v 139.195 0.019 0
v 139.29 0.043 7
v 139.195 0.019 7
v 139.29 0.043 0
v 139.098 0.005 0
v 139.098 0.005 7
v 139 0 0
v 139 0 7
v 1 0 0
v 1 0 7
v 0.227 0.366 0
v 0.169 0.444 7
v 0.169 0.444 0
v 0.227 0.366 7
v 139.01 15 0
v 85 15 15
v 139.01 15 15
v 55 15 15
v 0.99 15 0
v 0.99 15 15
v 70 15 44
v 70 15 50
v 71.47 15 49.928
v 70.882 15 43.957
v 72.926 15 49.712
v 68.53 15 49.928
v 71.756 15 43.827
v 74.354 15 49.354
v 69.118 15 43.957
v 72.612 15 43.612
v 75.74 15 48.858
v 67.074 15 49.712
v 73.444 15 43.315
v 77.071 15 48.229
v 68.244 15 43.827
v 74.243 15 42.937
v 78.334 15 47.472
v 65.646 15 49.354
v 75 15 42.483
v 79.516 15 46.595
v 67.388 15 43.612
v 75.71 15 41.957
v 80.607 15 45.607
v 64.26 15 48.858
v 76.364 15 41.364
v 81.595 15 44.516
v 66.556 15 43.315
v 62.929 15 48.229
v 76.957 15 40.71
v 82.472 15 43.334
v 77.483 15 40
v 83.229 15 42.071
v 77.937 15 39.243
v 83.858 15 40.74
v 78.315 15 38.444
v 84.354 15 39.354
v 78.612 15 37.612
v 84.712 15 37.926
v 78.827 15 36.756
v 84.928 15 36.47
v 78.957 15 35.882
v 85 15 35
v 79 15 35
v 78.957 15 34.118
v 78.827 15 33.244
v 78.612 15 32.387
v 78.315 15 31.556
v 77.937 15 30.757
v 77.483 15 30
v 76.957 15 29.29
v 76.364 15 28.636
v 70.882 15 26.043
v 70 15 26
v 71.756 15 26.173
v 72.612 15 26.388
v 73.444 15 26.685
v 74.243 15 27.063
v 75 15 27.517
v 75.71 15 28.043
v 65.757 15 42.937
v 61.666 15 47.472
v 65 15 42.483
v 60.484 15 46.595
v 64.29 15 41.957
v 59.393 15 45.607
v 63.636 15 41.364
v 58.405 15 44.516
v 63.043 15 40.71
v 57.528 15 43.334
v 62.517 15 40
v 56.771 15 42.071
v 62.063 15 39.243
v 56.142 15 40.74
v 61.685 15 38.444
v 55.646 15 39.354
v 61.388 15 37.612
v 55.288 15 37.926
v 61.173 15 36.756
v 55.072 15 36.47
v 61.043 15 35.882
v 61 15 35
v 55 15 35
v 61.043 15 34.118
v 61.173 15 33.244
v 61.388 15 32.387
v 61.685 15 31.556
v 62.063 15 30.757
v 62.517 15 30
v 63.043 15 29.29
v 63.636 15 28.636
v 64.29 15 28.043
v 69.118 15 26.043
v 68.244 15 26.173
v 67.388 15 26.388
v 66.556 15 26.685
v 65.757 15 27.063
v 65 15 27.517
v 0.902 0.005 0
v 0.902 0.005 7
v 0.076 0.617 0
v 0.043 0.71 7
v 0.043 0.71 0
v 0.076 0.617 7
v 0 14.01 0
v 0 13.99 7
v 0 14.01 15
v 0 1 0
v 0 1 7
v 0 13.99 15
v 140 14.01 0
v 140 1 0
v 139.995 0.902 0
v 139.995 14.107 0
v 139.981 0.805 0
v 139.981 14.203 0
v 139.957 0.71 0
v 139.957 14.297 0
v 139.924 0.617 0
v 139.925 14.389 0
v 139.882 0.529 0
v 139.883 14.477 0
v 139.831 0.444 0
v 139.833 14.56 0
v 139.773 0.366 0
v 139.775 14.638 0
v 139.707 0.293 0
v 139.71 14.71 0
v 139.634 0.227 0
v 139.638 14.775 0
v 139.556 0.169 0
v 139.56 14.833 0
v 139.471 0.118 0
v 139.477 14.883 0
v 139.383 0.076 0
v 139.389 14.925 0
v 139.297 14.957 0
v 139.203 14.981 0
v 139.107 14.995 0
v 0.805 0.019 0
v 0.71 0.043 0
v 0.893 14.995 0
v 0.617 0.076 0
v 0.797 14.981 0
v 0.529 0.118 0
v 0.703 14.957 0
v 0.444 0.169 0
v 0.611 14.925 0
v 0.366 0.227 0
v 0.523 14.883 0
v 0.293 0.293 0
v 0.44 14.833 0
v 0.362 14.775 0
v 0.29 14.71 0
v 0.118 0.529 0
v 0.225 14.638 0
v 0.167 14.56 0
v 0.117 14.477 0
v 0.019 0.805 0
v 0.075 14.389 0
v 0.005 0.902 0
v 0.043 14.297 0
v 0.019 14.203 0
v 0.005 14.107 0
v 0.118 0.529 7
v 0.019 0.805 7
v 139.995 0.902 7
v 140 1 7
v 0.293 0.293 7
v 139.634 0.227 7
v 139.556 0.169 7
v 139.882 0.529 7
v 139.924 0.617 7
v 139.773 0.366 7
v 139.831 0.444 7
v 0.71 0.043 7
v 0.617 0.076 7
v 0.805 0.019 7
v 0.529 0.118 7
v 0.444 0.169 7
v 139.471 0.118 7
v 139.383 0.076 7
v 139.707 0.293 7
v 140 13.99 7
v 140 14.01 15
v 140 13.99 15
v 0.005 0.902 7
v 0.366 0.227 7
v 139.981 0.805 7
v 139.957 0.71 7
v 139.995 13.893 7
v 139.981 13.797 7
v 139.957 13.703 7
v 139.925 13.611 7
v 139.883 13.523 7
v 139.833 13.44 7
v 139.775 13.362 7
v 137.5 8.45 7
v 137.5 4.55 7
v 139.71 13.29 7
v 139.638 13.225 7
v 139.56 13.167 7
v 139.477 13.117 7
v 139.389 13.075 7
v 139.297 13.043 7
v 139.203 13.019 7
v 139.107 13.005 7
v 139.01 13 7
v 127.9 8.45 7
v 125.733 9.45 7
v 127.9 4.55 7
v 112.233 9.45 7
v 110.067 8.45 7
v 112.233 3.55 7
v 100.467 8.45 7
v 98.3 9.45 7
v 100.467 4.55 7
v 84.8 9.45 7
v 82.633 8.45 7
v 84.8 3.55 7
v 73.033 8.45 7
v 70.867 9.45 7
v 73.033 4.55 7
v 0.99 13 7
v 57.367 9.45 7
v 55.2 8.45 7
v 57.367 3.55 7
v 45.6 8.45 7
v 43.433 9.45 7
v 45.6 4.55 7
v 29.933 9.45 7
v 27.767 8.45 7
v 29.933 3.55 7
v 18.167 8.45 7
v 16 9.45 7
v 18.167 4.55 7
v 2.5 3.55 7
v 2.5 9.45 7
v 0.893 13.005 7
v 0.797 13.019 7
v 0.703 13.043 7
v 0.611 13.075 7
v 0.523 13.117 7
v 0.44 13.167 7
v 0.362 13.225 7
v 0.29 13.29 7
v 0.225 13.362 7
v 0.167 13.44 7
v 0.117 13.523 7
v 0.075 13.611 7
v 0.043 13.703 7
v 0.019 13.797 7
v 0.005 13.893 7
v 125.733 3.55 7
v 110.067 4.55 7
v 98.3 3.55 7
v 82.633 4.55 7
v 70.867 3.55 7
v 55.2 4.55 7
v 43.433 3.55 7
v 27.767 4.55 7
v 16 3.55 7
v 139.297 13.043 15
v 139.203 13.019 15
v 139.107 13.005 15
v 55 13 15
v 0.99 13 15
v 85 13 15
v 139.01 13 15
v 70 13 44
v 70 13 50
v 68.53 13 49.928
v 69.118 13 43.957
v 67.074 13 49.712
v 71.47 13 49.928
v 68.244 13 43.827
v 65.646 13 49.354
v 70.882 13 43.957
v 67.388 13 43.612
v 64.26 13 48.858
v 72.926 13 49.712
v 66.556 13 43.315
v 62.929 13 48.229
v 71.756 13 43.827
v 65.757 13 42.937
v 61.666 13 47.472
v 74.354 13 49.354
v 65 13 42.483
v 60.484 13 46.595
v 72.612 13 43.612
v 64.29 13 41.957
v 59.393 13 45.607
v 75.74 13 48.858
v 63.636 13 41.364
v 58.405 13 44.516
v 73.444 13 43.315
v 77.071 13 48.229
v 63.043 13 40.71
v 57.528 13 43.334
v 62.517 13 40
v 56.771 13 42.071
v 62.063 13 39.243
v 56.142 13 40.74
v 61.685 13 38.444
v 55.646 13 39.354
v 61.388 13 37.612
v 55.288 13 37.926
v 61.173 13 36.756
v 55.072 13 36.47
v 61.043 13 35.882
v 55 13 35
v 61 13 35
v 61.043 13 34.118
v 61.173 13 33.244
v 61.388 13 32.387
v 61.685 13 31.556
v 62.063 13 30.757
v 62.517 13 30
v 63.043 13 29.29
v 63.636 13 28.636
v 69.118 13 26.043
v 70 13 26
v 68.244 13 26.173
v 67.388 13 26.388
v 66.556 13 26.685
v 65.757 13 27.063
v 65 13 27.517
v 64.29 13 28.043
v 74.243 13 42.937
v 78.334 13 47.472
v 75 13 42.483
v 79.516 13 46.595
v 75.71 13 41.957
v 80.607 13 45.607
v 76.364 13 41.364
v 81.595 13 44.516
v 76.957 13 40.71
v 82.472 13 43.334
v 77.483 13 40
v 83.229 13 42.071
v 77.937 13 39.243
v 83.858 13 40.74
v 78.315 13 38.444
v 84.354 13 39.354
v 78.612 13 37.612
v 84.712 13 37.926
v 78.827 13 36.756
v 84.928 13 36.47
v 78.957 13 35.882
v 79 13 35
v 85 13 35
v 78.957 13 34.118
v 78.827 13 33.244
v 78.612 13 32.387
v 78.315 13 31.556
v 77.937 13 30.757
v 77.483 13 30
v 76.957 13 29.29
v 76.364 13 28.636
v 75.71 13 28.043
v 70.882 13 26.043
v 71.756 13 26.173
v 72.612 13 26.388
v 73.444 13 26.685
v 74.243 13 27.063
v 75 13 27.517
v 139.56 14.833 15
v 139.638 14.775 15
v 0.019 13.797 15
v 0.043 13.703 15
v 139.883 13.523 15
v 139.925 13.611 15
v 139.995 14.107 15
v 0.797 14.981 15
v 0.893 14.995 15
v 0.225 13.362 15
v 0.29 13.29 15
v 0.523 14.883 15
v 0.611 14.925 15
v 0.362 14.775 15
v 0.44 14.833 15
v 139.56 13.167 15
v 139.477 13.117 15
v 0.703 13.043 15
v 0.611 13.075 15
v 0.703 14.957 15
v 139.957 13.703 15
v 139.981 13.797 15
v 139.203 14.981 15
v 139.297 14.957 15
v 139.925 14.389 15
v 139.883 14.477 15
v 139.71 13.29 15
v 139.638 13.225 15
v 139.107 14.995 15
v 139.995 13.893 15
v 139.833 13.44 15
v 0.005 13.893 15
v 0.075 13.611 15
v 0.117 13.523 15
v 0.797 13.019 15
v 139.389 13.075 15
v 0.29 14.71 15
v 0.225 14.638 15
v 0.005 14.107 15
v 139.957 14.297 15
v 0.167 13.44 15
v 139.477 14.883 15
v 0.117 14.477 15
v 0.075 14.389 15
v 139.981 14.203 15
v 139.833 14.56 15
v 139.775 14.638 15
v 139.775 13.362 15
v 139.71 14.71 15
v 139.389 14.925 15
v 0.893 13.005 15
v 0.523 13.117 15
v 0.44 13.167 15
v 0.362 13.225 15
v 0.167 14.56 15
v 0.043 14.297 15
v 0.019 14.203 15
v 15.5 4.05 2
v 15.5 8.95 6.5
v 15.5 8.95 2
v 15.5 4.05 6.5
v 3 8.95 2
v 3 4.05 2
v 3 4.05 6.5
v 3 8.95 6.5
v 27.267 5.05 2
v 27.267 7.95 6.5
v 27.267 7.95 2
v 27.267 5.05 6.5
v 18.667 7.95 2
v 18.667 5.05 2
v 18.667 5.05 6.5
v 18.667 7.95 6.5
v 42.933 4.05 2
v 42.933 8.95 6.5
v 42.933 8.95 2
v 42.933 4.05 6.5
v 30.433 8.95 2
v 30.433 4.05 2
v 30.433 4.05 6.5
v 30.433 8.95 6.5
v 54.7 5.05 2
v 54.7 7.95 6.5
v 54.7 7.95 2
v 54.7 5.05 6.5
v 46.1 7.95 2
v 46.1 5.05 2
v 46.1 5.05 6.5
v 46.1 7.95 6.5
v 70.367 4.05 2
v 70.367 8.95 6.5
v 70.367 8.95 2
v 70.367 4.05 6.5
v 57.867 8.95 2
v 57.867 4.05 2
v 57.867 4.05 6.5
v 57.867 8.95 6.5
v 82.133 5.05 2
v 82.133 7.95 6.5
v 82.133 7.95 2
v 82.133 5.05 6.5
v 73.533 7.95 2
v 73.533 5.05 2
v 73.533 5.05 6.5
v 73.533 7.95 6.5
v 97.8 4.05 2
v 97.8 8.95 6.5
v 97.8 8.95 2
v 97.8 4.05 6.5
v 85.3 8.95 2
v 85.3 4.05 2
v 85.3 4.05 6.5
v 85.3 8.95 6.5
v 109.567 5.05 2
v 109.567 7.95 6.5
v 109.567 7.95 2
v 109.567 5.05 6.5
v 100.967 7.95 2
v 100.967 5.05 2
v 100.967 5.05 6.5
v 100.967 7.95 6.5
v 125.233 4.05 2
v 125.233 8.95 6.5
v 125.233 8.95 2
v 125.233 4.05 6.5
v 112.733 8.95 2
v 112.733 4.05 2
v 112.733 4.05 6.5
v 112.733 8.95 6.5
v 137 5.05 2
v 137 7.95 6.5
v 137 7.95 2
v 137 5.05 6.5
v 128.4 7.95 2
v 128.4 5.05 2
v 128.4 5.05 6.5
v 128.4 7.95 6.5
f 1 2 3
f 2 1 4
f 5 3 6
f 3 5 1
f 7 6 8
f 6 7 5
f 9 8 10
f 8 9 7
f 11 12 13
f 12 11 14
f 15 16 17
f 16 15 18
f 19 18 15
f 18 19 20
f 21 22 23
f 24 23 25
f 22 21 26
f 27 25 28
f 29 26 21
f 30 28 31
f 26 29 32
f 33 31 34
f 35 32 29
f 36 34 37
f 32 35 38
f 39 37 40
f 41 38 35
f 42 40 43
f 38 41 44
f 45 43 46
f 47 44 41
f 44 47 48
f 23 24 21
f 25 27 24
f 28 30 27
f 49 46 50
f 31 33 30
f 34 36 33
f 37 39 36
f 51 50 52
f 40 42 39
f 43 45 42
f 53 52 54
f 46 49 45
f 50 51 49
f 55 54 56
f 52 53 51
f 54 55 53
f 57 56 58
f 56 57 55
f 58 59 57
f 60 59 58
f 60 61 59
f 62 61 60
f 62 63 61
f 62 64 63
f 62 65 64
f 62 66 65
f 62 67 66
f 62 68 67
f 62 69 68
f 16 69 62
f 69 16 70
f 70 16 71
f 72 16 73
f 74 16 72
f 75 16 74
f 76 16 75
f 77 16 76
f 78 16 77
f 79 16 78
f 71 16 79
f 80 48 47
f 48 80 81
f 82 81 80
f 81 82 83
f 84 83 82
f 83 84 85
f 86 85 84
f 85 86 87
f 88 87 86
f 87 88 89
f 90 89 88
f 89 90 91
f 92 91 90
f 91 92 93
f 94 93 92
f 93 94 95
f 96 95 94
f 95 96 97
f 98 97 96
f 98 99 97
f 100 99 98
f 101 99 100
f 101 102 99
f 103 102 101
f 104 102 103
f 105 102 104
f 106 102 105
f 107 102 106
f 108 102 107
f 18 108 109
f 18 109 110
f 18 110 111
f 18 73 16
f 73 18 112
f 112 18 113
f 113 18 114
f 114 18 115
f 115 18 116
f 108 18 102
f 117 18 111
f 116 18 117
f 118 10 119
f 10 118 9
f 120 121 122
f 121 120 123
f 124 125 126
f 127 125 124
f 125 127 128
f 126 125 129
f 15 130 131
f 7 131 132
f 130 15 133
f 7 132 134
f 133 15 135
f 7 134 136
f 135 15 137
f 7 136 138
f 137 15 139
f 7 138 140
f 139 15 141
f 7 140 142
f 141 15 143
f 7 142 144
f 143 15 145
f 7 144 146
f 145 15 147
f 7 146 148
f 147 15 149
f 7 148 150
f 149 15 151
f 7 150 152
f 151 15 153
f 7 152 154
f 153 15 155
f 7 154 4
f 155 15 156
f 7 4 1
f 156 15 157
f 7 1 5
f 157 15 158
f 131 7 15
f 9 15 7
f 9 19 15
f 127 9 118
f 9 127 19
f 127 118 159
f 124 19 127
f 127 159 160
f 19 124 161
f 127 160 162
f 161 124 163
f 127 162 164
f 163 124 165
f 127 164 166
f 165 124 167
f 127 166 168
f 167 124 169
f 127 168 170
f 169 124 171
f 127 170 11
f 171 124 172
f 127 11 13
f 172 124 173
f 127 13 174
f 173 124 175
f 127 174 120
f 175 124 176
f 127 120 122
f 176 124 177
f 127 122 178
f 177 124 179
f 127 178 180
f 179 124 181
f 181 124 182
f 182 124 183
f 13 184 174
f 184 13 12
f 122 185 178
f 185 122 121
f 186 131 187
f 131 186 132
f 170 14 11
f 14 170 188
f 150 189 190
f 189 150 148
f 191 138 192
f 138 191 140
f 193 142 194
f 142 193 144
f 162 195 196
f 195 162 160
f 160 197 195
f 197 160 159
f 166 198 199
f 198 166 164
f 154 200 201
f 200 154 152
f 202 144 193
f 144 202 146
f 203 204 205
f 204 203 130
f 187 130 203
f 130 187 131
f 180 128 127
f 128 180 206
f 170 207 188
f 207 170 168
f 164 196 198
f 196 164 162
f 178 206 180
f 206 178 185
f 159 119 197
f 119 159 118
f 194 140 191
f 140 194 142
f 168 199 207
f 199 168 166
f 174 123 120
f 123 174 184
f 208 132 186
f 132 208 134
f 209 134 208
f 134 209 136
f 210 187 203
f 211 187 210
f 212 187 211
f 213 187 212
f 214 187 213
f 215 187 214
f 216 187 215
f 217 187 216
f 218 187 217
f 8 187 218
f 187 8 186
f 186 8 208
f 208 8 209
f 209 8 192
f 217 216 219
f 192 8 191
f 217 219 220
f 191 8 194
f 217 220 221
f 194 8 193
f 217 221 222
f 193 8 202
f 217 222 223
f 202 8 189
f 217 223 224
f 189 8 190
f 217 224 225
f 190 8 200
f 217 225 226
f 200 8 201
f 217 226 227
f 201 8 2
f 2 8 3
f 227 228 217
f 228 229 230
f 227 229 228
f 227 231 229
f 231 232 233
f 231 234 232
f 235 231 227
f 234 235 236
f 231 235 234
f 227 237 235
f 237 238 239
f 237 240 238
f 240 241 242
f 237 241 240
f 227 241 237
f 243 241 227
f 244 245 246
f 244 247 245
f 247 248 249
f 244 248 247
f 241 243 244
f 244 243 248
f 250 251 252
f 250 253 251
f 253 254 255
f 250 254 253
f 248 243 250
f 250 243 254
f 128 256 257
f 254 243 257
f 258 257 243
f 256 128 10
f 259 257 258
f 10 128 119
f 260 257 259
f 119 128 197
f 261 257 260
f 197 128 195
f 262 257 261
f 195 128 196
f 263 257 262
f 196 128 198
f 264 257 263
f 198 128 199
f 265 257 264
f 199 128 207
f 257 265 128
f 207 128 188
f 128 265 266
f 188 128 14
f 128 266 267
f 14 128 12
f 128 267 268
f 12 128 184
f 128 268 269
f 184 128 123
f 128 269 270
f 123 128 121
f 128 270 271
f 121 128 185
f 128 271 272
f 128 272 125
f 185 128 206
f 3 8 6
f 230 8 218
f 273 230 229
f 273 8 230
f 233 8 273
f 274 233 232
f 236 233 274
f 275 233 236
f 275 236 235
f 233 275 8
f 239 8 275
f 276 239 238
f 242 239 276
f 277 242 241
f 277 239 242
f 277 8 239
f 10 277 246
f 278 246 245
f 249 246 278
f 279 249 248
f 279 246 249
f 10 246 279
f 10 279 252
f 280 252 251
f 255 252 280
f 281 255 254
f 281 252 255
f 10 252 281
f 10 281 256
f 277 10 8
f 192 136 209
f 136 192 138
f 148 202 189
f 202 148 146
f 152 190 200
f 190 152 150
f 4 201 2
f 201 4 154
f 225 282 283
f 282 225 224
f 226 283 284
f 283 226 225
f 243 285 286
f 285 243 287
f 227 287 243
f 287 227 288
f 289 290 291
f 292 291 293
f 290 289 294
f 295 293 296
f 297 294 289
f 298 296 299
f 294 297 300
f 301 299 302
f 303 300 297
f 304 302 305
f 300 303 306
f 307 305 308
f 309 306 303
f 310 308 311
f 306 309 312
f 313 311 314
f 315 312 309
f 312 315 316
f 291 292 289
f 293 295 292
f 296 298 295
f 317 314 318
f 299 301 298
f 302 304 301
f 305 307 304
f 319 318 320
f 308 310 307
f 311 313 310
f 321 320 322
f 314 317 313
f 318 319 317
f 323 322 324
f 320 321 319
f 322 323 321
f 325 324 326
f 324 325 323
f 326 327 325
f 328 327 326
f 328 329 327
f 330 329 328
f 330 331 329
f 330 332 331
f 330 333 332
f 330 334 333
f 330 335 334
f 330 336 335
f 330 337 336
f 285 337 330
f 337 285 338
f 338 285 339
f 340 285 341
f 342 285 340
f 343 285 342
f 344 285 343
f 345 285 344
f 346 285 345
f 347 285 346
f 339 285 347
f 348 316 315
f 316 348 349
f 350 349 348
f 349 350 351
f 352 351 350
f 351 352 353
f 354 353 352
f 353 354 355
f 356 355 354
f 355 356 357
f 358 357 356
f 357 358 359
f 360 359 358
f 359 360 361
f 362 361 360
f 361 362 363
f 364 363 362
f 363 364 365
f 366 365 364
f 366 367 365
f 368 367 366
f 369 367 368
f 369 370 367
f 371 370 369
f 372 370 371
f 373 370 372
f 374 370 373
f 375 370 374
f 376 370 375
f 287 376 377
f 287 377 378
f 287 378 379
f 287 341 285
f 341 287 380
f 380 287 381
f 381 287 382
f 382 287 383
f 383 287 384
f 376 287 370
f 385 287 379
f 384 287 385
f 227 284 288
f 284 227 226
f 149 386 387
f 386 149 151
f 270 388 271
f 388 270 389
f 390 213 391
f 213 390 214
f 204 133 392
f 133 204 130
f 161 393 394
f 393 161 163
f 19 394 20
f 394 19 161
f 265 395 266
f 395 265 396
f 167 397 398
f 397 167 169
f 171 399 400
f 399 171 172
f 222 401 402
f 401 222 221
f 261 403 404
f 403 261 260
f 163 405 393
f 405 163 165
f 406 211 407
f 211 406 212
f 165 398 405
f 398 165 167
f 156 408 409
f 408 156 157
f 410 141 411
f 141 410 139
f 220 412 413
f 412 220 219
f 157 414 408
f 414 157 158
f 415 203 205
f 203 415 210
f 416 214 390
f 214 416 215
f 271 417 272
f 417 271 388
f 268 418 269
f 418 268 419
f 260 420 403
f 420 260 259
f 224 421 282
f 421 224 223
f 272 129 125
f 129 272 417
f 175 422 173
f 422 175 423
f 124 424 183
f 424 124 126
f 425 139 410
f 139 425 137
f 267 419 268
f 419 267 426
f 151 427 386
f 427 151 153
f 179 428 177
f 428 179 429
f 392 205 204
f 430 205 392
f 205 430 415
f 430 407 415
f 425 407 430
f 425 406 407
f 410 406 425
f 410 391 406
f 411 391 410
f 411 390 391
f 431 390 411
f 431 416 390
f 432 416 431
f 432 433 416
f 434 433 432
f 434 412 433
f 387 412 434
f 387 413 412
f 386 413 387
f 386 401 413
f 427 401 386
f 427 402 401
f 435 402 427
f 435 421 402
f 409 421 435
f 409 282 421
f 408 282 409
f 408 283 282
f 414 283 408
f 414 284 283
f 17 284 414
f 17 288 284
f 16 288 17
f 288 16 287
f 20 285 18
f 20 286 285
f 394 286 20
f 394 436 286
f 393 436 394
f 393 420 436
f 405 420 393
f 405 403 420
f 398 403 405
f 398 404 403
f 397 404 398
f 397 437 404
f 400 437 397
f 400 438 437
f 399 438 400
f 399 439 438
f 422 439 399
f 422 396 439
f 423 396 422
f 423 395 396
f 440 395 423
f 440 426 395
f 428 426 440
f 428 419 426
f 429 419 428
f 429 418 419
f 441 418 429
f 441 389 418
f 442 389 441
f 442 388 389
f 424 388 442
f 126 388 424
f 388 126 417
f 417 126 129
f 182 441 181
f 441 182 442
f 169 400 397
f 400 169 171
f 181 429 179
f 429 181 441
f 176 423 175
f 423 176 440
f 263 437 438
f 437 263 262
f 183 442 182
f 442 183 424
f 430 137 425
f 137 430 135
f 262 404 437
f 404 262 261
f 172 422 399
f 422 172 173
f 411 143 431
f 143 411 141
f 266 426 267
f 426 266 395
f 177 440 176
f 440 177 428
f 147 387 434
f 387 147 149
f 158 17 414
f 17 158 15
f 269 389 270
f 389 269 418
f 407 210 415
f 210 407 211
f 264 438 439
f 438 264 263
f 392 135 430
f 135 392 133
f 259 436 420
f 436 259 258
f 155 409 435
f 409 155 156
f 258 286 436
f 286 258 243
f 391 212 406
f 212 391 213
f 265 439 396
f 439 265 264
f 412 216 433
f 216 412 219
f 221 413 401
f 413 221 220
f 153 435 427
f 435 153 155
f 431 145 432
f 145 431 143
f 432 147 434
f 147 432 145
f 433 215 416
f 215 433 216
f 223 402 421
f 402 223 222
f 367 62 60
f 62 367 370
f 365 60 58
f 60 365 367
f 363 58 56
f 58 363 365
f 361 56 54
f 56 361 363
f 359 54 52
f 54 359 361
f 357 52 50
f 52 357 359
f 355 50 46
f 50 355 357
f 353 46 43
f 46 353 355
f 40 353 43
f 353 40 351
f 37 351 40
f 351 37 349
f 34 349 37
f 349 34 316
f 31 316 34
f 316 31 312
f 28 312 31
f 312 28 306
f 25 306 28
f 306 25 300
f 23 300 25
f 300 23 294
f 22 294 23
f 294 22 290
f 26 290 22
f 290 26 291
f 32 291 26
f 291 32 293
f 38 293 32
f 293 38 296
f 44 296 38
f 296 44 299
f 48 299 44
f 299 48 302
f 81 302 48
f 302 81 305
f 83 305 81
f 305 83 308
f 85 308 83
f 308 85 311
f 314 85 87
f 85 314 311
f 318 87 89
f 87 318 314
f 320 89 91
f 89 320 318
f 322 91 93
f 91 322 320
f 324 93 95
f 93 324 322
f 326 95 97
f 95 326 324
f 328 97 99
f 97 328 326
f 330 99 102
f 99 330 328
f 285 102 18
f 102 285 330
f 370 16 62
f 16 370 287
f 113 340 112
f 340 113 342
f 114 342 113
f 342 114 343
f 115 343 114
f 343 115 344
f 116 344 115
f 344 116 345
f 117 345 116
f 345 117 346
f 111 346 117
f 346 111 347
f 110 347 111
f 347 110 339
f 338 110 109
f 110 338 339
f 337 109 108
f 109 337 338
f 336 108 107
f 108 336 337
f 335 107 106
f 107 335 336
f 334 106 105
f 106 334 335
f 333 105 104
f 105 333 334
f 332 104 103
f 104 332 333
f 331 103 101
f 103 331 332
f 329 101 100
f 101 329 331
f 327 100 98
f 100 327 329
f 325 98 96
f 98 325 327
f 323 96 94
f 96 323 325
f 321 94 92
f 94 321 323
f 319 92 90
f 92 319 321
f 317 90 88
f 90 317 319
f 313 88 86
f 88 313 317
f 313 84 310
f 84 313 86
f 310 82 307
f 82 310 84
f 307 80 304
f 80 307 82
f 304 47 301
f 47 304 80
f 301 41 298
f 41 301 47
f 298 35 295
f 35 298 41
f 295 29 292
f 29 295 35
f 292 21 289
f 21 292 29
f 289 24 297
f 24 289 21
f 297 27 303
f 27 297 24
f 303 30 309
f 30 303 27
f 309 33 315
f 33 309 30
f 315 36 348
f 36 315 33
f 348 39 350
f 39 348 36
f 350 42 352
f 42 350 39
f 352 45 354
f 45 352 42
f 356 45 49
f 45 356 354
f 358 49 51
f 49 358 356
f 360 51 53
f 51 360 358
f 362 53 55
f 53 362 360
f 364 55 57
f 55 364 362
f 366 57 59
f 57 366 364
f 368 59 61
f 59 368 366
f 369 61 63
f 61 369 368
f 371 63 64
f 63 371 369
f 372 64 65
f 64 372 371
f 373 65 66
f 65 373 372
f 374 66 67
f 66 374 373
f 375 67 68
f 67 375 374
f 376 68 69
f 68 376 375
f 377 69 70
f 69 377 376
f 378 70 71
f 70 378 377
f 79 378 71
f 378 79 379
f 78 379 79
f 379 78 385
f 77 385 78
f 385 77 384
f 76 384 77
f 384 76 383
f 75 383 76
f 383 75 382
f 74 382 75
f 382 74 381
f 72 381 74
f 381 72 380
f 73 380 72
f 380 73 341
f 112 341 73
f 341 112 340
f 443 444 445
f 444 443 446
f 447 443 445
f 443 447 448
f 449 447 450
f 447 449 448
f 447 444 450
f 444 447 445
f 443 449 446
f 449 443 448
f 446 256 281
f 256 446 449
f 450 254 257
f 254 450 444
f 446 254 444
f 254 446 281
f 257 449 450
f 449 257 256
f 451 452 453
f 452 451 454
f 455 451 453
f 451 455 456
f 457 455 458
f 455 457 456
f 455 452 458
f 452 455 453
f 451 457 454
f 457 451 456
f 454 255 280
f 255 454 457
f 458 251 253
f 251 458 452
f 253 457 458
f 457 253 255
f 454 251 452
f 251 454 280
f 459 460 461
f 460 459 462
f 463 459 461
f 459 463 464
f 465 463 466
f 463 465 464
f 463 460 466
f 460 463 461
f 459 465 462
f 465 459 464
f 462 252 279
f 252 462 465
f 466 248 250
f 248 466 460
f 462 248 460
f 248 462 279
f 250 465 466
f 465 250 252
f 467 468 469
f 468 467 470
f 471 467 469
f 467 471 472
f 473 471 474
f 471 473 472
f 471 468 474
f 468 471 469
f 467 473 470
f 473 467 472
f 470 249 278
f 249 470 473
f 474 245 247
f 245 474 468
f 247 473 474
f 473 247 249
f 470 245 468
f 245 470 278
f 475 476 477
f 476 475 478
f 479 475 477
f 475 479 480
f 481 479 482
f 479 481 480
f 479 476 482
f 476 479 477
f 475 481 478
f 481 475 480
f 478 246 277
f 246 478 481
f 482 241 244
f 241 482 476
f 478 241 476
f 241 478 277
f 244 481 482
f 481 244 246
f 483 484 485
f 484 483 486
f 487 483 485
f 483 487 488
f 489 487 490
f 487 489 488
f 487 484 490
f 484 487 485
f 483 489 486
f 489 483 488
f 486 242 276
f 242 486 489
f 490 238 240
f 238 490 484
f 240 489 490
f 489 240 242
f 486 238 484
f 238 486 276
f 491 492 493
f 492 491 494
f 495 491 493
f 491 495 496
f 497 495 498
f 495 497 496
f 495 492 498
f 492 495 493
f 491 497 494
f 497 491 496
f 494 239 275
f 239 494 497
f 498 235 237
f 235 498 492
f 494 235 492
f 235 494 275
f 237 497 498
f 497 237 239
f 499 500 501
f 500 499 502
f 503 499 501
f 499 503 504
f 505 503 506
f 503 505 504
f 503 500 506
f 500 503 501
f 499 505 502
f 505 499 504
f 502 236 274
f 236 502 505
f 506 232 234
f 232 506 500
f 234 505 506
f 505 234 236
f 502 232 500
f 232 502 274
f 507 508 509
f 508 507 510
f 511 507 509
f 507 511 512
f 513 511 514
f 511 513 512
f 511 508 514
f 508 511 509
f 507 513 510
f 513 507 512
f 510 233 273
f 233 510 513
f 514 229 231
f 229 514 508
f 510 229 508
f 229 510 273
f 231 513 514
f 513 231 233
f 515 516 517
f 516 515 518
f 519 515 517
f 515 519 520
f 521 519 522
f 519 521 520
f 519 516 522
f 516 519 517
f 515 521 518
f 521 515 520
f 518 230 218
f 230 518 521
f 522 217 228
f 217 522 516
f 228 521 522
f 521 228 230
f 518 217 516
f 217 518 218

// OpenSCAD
// USB dongle holder: L bracket with a row of blind slots in the base,
// alternating USB-A and USB-C, and a handle in the middle of the back wall.
//
// X - along the bracket, Y - front to back, Z - up

/* [Bracket] */
len      = 140;  // bracket length
base_w   = 15;   // base depth (front to back), wall included
base_h   = 7;    // base thickness = slot depth + floor under slots
wall     = 2;    // back wall thickness
wall_h   = 15;   // back wall height from the bottom
corner_r = 1;    // rounding of the outer vertical corners

/* [Handle] */
handle_h    = 50; // handle height from the bottom
handle_w    = 30; // handle width
finger_d    = 18; // finger hole diameter, 0 for none

/* [Slots] */
usba        = [12.2, 4.6]; // USB-A plug [width, thickness]
usbc        = [8.3, 2.6];  // USB-C plug [width, thickness]
clear       = 0.3;  // added to each slot dimension
slot_depth  = 5;
min_gap     = 2;    // minimal spacing between slots
end_margin  = 3;    // minimal material at each end
slot_count  = 0;    // 0 = as many as fit
pattern     = "AC"; // slot types, repeated: "AC" alternates, "A" only USB-A, "C" only USB-C
spread      = true; // true = spread slots over the length, false = exactly min_gap, centered
chamfer     = 0.5;  // lead-in chamfer at the slot opening

$fn = 64;
e = 0.01;

slot_y   = (base_w - wall) / 2;  // slots centered on the open part of the base
avail    = len - 2 * end_margin;

function slot_type(i) = pattern[i % len(pattern)];
function slot_dim(i) = (slot_type(i) == "A" ? usba : usbc) + [clear, clear];
function sum_w(n) = n <= 0 ? 0 : slot_dim(n - 1)[0] + sum_w(n - 1);
function fits(n) = sum_w(n) + (n - 1) * min_gap <= avail;
function max_count(n = 1) = fits(n + 1) ? max_count(n + 1) : n;

n   = slot_count > 0 ? slot_count : max_count();
gap = n > 1 && spread ? (avail - sum_w(n)) / (n - 1) : min_gap;
assert(sum_w(n) + (n - 1) * gap <= avail + e, "slots do not fit");
x0  = (len - sum_w(n) - (n - 1) * gap) / 2; // start of the row

function count(t, i = 0) = i >= n ? 0 : (slot_type(i) == t ? 1 : 0) + count(t, i + 1);
echo(str("Slots: ", n, " (", count("A"), " USB-A, ", count("C"), " USB-C), gap ", gap, " mm"));

module rounded_rect(l, w, r) {
    offset(r = r) offset(delta = -r) square([l, w]);
}

module slot(d) {
    l = d[0]; t = d[1];
    translate([-l / 2, -t / 2, base_h - slot_depth])
        cube([l, t, slot_depth + e]);
    // lead-in chamfer
    translate([0, 0, base_h - chamfer])
        hull() {
            linear_extrude(height = e) square([l, t], center = true);
            translate([0, 0, chamfer]) linear_extrude(height = e)
                square([l + 2 * chamfer, t + 2 * chamfer], center = true);
        }
}

module slots() {
    for (i = [0 : n - 1])
        translate([x0 + sum_w(i) + i * gap + slot_dim(i)[0] / 2, slot_y, 0])
            slot(slot_dim(i));
}

// handle profile in XZ, rounded top with a finger hole
module handle_profile() {
    r = handle_w / 2;
    difference() {
        hull() {
            translate([-r, 0]) square([handle_w, e]);
            translate([0, handle_h - r]) circle(r = r);
        }
        if (finger_d > 0)
            translate([0, handle_h - r]) circle(d = finger_d);
    }
}

module bracket() {
    difference() {
        union() {
            linear_extrude(height = base_h) rounded_rect(len, base_w, corner_r);
            // back wall
            translate([0, base_w - wall, 0])
                linear_extrude(height = wall_h) rounded_rect(len, wall, min(corner_r, wall / 2 - e));
            // handle
            translate([len / 2, base_w, 0]) rotate([90, 0, 0])
                linear_extrude(height = wall) handle_profile();
        }
        slots();
    }
}

bracket();
